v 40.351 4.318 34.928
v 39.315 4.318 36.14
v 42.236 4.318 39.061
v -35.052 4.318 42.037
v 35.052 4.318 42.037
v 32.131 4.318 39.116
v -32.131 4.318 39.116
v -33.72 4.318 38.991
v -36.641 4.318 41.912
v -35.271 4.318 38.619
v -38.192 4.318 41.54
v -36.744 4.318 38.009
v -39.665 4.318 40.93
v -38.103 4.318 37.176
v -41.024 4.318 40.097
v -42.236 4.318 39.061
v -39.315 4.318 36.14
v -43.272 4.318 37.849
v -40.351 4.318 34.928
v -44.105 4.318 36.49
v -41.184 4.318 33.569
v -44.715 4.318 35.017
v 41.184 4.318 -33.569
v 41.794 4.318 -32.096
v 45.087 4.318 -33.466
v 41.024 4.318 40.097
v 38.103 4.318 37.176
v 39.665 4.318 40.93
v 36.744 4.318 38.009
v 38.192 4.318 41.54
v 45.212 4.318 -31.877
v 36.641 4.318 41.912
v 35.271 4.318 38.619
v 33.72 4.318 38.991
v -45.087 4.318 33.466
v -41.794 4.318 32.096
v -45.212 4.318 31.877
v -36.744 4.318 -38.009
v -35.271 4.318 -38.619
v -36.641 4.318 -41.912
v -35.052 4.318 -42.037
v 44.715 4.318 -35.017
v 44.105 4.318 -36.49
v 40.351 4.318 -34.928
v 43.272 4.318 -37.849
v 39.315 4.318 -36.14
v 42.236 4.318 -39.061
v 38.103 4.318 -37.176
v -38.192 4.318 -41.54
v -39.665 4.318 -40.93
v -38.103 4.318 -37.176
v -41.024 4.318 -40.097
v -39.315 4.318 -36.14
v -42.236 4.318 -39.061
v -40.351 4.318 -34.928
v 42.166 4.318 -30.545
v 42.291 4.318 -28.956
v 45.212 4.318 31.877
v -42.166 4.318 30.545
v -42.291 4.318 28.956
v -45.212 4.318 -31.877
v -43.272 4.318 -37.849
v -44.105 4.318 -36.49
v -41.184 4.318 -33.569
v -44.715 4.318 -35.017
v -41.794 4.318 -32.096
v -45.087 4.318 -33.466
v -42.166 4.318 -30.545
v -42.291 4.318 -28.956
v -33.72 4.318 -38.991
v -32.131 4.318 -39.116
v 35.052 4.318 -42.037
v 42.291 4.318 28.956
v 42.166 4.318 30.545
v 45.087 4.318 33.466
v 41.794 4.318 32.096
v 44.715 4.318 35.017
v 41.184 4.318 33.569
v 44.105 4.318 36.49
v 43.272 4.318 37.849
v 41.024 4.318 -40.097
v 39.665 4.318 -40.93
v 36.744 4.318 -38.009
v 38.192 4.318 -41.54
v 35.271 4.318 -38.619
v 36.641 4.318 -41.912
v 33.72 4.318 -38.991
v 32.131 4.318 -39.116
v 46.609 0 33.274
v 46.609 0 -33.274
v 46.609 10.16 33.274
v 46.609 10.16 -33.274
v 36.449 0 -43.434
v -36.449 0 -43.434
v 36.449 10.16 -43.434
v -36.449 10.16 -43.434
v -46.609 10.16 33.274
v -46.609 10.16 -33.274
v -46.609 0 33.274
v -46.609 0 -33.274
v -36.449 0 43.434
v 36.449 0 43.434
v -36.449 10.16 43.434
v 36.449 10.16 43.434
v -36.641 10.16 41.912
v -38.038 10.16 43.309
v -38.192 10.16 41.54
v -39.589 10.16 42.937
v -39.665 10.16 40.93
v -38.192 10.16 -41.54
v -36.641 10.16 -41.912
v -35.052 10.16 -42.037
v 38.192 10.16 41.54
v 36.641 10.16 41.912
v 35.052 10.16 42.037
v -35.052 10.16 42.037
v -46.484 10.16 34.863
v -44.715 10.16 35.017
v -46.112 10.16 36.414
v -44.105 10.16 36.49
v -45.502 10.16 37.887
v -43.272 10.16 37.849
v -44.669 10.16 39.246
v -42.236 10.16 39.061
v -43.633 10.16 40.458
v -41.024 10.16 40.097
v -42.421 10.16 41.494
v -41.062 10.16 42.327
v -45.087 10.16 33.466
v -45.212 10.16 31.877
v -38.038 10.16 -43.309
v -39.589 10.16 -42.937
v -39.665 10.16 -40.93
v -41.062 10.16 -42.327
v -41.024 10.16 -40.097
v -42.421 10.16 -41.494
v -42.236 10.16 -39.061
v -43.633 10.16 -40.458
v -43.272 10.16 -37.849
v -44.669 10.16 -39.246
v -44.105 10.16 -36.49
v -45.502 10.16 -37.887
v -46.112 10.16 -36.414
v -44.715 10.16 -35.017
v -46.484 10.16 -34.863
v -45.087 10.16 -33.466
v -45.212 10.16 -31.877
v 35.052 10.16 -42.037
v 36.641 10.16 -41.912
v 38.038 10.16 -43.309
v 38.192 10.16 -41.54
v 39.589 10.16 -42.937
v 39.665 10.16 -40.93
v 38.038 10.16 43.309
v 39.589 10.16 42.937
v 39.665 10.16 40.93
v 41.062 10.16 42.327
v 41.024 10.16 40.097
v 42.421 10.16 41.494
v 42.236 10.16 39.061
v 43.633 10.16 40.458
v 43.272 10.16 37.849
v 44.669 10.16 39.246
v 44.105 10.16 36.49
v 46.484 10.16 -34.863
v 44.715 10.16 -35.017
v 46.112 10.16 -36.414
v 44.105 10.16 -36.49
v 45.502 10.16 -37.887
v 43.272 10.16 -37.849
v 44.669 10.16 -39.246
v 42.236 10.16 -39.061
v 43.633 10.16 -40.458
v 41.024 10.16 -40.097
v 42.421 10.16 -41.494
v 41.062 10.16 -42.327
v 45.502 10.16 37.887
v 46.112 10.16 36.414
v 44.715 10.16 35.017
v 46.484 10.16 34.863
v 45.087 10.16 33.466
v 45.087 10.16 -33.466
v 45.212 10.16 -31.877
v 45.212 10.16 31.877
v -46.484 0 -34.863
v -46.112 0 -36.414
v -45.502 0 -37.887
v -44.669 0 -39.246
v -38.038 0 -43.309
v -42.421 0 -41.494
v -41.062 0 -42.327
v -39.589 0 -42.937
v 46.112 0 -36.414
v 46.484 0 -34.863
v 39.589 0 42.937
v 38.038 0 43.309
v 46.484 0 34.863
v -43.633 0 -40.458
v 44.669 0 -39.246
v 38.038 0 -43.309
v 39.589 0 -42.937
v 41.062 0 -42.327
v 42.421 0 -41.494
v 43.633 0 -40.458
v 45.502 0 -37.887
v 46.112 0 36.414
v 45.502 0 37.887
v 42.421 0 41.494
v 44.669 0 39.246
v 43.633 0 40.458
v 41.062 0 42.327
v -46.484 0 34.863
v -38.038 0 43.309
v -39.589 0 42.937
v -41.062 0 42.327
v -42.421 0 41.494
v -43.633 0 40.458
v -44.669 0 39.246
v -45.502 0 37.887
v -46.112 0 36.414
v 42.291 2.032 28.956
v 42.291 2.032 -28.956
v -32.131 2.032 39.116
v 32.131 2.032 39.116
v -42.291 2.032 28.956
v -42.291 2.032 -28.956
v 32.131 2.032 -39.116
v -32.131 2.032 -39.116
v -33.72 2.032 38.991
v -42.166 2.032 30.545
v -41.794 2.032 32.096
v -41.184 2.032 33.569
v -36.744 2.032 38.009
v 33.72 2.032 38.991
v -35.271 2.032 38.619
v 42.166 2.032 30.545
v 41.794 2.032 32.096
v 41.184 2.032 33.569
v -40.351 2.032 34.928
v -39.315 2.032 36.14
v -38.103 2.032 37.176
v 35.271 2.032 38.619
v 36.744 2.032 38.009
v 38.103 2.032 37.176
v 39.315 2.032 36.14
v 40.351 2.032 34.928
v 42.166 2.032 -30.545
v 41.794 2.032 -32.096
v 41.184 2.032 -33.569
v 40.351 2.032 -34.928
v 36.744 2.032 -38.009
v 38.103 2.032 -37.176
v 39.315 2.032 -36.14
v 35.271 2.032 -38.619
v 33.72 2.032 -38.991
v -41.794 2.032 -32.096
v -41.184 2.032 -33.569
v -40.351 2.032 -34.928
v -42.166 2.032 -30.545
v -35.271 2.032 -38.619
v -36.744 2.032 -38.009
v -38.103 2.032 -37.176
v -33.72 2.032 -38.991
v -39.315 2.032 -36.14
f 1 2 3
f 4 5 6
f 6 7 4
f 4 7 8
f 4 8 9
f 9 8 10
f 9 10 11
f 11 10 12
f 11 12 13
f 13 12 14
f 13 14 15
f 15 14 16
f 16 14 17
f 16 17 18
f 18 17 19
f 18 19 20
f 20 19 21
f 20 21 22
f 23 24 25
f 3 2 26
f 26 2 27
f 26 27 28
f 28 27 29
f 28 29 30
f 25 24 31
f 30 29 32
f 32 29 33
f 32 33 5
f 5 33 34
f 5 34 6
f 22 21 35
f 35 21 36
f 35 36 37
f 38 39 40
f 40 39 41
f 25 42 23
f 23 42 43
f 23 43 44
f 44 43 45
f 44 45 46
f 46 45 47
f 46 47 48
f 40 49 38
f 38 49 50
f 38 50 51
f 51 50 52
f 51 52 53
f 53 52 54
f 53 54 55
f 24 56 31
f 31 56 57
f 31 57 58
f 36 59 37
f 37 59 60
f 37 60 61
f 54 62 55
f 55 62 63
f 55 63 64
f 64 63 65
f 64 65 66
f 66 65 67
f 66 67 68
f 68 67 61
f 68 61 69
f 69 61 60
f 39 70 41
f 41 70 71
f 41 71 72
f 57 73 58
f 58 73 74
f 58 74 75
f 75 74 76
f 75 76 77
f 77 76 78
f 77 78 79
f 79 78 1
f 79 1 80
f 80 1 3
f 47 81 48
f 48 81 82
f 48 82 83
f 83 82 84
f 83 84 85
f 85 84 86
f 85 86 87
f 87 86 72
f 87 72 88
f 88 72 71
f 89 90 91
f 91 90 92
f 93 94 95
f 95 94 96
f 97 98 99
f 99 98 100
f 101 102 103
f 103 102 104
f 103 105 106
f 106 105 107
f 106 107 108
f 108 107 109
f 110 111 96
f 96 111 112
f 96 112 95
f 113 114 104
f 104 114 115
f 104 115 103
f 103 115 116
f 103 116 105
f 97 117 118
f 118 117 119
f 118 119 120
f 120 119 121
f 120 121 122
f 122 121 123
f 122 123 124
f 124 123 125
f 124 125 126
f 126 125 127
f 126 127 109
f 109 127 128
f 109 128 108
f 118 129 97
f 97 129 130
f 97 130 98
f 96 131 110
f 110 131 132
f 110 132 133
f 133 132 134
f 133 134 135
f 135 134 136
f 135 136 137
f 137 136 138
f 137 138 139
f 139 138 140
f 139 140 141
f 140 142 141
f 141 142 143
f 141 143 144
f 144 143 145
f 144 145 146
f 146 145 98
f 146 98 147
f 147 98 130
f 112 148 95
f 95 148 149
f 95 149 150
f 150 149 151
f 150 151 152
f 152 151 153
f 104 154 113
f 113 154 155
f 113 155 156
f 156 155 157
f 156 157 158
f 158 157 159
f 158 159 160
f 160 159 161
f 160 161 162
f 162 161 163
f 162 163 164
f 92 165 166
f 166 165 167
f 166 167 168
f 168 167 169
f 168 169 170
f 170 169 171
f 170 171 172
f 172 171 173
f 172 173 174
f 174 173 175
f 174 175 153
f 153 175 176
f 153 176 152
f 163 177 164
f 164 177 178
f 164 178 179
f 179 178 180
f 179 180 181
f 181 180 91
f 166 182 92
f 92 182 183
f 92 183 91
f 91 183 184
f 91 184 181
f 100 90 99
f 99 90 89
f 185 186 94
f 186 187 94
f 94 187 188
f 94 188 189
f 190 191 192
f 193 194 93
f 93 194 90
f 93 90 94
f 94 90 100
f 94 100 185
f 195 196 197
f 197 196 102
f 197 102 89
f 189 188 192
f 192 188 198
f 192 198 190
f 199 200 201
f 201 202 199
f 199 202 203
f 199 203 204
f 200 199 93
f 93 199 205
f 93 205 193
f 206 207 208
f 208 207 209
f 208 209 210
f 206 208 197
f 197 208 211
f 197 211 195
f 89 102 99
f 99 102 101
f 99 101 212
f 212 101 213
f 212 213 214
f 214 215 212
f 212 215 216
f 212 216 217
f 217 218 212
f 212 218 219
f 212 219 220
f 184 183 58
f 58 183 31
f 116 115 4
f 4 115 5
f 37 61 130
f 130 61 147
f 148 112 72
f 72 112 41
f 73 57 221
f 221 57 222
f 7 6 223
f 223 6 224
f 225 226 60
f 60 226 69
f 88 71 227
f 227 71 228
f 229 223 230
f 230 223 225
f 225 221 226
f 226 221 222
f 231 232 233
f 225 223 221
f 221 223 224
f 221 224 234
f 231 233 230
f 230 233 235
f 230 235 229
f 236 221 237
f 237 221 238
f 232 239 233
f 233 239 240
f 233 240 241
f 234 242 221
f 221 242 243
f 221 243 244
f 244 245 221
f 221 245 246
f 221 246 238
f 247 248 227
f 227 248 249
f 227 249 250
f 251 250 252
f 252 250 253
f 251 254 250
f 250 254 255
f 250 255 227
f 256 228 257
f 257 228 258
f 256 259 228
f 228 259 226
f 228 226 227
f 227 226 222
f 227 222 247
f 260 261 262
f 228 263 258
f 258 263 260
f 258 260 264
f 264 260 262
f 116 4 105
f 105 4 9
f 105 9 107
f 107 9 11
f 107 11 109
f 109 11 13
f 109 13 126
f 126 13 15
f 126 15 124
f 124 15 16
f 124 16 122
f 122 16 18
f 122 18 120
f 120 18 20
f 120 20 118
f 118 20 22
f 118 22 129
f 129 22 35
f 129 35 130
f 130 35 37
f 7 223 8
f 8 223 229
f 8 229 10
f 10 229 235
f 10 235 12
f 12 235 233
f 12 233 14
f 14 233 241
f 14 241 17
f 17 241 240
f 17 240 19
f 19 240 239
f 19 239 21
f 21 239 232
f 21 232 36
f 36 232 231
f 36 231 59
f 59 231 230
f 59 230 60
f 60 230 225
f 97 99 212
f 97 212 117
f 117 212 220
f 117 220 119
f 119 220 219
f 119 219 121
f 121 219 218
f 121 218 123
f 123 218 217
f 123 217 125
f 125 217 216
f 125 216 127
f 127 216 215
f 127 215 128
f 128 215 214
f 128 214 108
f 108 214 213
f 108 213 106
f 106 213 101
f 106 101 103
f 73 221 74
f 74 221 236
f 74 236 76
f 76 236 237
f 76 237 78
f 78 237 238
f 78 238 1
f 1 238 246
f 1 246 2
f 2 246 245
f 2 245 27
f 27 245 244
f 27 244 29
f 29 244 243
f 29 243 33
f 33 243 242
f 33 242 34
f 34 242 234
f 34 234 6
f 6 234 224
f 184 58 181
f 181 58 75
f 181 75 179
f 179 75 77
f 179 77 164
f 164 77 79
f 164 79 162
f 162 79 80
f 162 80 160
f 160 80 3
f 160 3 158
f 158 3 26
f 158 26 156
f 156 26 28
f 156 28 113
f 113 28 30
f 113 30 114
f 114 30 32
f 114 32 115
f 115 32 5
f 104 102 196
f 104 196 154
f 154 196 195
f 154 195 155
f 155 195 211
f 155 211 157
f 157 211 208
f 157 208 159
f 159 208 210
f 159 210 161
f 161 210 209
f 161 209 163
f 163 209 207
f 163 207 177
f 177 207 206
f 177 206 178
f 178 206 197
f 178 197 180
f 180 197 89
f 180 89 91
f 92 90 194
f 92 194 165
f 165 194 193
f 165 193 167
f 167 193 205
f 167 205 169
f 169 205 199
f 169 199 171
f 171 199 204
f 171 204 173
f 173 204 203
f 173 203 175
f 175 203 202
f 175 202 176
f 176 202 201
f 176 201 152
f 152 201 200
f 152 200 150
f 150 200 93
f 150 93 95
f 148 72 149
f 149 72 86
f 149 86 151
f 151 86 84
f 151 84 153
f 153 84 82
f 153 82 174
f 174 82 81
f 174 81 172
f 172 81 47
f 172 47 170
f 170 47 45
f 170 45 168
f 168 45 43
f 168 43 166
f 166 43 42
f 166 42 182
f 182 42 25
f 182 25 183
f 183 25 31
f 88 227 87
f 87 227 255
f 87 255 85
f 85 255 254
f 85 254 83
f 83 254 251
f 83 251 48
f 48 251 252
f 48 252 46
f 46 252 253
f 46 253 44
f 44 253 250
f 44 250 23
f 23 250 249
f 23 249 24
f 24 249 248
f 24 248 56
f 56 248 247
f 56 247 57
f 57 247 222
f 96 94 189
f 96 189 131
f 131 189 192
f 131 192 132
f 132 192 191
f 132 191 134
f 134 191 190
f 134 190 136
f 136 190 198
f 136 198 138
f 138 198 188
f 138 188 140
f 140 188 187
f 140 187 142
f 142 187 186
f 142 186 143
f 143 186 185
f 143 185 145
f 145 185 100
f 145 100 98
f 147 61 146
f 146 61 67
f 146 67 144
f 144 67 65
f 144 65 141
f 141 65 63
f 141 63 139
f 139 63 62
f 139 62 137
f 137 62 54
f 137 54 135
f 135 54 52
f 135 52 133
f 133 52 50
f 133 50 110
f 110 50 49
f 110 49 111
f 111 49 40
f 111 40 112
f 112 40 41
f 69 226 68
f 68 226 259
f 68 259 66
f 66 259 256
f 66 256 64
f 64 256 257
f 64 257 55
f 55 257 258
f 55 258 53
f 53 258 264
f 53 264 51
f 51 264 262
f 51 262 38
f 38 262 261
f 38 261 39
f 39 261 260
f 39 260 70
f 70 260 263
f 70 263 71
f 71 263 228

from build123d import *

# Parameters (mm, degrees)
SKETCH1_W           = 93.218
SKETCH1_H           = 86.868
BOSS_EXTRUDE1_DEPTH = 10.16
SKETCH2_W           = 90.424
SKETCH2_H           = 84.074
CUT_EXTRUDE1_DEPTH  = 5.842
SKETCH3_W           = 84.582
SKETCH3_H           = 78.232
CUT_EXTRUDE2_DEPTH  = 2.286
FILLET1_R           = 10.16


with BuildPart() as part:
    # Sketch1 → Boss-Extrude1 (new body)
    with BuildSketch(Plane(origin=(0, 0, 0), x_dir=(1, 0, 0), z_dir=(0, 1, 0))):
        Rectangle(SKETCH1_W, SKETCH1_H)
    extrude(amount=BOSS_EXTRUDE1_DEPTH)

    # Sketch2 → Cut-Extrude1 (cut)
    with BuildSketch(Plane(origin=(0, 10.16, 0), x_dir=(1, 0, 0), z_dir=(0, 1, 0))):
        Rectangle(SKETCH2_W, SKETCH2_H)
    extrude(amount=-CUT_EXTRUDE1_DEPTH, mode=Mode.SUBTRACT)

    # Sketch3 → Cut-Extrude2 (cut)
    with BuildSketch(Plane(origin=(0, 4.318, 0), x_dir=(1, 0, 0), z_dir=(0, 1, 0))):
        Rectangle(SKETCH3_W, SKETCH3_H)
    extrude(amount=-CUT_EXTRUDE2_DEPTH, mode=Mode.SUBTRACT)

    # Fillet1
    fillet1_edges = [part.edges().sort_by_distance(p)[0] for p in [
        (45.212, 7.239, -42.037),
        (45.212, 7.239, 42.037),
        (-45.212, 7.239, 42.037),
        (-45.212, 7.239, -42.037),
        (42.291, 3.175, -39.116),
        (42.291, 3.175, 39.116),
        (-42.291, 3.175, 39.116),
        (-42.291, 3.175, -39.116),
        (46.609, 5.08, 43.434),
        (-46.609, 5.08, 43.434),
        (-46.609, 5.08, -43.434),
        (46.609, 5.08, -43.434),
    ]]
    fillet(fillet1_edges, radius=FILLET1_R)


solid = part.part
